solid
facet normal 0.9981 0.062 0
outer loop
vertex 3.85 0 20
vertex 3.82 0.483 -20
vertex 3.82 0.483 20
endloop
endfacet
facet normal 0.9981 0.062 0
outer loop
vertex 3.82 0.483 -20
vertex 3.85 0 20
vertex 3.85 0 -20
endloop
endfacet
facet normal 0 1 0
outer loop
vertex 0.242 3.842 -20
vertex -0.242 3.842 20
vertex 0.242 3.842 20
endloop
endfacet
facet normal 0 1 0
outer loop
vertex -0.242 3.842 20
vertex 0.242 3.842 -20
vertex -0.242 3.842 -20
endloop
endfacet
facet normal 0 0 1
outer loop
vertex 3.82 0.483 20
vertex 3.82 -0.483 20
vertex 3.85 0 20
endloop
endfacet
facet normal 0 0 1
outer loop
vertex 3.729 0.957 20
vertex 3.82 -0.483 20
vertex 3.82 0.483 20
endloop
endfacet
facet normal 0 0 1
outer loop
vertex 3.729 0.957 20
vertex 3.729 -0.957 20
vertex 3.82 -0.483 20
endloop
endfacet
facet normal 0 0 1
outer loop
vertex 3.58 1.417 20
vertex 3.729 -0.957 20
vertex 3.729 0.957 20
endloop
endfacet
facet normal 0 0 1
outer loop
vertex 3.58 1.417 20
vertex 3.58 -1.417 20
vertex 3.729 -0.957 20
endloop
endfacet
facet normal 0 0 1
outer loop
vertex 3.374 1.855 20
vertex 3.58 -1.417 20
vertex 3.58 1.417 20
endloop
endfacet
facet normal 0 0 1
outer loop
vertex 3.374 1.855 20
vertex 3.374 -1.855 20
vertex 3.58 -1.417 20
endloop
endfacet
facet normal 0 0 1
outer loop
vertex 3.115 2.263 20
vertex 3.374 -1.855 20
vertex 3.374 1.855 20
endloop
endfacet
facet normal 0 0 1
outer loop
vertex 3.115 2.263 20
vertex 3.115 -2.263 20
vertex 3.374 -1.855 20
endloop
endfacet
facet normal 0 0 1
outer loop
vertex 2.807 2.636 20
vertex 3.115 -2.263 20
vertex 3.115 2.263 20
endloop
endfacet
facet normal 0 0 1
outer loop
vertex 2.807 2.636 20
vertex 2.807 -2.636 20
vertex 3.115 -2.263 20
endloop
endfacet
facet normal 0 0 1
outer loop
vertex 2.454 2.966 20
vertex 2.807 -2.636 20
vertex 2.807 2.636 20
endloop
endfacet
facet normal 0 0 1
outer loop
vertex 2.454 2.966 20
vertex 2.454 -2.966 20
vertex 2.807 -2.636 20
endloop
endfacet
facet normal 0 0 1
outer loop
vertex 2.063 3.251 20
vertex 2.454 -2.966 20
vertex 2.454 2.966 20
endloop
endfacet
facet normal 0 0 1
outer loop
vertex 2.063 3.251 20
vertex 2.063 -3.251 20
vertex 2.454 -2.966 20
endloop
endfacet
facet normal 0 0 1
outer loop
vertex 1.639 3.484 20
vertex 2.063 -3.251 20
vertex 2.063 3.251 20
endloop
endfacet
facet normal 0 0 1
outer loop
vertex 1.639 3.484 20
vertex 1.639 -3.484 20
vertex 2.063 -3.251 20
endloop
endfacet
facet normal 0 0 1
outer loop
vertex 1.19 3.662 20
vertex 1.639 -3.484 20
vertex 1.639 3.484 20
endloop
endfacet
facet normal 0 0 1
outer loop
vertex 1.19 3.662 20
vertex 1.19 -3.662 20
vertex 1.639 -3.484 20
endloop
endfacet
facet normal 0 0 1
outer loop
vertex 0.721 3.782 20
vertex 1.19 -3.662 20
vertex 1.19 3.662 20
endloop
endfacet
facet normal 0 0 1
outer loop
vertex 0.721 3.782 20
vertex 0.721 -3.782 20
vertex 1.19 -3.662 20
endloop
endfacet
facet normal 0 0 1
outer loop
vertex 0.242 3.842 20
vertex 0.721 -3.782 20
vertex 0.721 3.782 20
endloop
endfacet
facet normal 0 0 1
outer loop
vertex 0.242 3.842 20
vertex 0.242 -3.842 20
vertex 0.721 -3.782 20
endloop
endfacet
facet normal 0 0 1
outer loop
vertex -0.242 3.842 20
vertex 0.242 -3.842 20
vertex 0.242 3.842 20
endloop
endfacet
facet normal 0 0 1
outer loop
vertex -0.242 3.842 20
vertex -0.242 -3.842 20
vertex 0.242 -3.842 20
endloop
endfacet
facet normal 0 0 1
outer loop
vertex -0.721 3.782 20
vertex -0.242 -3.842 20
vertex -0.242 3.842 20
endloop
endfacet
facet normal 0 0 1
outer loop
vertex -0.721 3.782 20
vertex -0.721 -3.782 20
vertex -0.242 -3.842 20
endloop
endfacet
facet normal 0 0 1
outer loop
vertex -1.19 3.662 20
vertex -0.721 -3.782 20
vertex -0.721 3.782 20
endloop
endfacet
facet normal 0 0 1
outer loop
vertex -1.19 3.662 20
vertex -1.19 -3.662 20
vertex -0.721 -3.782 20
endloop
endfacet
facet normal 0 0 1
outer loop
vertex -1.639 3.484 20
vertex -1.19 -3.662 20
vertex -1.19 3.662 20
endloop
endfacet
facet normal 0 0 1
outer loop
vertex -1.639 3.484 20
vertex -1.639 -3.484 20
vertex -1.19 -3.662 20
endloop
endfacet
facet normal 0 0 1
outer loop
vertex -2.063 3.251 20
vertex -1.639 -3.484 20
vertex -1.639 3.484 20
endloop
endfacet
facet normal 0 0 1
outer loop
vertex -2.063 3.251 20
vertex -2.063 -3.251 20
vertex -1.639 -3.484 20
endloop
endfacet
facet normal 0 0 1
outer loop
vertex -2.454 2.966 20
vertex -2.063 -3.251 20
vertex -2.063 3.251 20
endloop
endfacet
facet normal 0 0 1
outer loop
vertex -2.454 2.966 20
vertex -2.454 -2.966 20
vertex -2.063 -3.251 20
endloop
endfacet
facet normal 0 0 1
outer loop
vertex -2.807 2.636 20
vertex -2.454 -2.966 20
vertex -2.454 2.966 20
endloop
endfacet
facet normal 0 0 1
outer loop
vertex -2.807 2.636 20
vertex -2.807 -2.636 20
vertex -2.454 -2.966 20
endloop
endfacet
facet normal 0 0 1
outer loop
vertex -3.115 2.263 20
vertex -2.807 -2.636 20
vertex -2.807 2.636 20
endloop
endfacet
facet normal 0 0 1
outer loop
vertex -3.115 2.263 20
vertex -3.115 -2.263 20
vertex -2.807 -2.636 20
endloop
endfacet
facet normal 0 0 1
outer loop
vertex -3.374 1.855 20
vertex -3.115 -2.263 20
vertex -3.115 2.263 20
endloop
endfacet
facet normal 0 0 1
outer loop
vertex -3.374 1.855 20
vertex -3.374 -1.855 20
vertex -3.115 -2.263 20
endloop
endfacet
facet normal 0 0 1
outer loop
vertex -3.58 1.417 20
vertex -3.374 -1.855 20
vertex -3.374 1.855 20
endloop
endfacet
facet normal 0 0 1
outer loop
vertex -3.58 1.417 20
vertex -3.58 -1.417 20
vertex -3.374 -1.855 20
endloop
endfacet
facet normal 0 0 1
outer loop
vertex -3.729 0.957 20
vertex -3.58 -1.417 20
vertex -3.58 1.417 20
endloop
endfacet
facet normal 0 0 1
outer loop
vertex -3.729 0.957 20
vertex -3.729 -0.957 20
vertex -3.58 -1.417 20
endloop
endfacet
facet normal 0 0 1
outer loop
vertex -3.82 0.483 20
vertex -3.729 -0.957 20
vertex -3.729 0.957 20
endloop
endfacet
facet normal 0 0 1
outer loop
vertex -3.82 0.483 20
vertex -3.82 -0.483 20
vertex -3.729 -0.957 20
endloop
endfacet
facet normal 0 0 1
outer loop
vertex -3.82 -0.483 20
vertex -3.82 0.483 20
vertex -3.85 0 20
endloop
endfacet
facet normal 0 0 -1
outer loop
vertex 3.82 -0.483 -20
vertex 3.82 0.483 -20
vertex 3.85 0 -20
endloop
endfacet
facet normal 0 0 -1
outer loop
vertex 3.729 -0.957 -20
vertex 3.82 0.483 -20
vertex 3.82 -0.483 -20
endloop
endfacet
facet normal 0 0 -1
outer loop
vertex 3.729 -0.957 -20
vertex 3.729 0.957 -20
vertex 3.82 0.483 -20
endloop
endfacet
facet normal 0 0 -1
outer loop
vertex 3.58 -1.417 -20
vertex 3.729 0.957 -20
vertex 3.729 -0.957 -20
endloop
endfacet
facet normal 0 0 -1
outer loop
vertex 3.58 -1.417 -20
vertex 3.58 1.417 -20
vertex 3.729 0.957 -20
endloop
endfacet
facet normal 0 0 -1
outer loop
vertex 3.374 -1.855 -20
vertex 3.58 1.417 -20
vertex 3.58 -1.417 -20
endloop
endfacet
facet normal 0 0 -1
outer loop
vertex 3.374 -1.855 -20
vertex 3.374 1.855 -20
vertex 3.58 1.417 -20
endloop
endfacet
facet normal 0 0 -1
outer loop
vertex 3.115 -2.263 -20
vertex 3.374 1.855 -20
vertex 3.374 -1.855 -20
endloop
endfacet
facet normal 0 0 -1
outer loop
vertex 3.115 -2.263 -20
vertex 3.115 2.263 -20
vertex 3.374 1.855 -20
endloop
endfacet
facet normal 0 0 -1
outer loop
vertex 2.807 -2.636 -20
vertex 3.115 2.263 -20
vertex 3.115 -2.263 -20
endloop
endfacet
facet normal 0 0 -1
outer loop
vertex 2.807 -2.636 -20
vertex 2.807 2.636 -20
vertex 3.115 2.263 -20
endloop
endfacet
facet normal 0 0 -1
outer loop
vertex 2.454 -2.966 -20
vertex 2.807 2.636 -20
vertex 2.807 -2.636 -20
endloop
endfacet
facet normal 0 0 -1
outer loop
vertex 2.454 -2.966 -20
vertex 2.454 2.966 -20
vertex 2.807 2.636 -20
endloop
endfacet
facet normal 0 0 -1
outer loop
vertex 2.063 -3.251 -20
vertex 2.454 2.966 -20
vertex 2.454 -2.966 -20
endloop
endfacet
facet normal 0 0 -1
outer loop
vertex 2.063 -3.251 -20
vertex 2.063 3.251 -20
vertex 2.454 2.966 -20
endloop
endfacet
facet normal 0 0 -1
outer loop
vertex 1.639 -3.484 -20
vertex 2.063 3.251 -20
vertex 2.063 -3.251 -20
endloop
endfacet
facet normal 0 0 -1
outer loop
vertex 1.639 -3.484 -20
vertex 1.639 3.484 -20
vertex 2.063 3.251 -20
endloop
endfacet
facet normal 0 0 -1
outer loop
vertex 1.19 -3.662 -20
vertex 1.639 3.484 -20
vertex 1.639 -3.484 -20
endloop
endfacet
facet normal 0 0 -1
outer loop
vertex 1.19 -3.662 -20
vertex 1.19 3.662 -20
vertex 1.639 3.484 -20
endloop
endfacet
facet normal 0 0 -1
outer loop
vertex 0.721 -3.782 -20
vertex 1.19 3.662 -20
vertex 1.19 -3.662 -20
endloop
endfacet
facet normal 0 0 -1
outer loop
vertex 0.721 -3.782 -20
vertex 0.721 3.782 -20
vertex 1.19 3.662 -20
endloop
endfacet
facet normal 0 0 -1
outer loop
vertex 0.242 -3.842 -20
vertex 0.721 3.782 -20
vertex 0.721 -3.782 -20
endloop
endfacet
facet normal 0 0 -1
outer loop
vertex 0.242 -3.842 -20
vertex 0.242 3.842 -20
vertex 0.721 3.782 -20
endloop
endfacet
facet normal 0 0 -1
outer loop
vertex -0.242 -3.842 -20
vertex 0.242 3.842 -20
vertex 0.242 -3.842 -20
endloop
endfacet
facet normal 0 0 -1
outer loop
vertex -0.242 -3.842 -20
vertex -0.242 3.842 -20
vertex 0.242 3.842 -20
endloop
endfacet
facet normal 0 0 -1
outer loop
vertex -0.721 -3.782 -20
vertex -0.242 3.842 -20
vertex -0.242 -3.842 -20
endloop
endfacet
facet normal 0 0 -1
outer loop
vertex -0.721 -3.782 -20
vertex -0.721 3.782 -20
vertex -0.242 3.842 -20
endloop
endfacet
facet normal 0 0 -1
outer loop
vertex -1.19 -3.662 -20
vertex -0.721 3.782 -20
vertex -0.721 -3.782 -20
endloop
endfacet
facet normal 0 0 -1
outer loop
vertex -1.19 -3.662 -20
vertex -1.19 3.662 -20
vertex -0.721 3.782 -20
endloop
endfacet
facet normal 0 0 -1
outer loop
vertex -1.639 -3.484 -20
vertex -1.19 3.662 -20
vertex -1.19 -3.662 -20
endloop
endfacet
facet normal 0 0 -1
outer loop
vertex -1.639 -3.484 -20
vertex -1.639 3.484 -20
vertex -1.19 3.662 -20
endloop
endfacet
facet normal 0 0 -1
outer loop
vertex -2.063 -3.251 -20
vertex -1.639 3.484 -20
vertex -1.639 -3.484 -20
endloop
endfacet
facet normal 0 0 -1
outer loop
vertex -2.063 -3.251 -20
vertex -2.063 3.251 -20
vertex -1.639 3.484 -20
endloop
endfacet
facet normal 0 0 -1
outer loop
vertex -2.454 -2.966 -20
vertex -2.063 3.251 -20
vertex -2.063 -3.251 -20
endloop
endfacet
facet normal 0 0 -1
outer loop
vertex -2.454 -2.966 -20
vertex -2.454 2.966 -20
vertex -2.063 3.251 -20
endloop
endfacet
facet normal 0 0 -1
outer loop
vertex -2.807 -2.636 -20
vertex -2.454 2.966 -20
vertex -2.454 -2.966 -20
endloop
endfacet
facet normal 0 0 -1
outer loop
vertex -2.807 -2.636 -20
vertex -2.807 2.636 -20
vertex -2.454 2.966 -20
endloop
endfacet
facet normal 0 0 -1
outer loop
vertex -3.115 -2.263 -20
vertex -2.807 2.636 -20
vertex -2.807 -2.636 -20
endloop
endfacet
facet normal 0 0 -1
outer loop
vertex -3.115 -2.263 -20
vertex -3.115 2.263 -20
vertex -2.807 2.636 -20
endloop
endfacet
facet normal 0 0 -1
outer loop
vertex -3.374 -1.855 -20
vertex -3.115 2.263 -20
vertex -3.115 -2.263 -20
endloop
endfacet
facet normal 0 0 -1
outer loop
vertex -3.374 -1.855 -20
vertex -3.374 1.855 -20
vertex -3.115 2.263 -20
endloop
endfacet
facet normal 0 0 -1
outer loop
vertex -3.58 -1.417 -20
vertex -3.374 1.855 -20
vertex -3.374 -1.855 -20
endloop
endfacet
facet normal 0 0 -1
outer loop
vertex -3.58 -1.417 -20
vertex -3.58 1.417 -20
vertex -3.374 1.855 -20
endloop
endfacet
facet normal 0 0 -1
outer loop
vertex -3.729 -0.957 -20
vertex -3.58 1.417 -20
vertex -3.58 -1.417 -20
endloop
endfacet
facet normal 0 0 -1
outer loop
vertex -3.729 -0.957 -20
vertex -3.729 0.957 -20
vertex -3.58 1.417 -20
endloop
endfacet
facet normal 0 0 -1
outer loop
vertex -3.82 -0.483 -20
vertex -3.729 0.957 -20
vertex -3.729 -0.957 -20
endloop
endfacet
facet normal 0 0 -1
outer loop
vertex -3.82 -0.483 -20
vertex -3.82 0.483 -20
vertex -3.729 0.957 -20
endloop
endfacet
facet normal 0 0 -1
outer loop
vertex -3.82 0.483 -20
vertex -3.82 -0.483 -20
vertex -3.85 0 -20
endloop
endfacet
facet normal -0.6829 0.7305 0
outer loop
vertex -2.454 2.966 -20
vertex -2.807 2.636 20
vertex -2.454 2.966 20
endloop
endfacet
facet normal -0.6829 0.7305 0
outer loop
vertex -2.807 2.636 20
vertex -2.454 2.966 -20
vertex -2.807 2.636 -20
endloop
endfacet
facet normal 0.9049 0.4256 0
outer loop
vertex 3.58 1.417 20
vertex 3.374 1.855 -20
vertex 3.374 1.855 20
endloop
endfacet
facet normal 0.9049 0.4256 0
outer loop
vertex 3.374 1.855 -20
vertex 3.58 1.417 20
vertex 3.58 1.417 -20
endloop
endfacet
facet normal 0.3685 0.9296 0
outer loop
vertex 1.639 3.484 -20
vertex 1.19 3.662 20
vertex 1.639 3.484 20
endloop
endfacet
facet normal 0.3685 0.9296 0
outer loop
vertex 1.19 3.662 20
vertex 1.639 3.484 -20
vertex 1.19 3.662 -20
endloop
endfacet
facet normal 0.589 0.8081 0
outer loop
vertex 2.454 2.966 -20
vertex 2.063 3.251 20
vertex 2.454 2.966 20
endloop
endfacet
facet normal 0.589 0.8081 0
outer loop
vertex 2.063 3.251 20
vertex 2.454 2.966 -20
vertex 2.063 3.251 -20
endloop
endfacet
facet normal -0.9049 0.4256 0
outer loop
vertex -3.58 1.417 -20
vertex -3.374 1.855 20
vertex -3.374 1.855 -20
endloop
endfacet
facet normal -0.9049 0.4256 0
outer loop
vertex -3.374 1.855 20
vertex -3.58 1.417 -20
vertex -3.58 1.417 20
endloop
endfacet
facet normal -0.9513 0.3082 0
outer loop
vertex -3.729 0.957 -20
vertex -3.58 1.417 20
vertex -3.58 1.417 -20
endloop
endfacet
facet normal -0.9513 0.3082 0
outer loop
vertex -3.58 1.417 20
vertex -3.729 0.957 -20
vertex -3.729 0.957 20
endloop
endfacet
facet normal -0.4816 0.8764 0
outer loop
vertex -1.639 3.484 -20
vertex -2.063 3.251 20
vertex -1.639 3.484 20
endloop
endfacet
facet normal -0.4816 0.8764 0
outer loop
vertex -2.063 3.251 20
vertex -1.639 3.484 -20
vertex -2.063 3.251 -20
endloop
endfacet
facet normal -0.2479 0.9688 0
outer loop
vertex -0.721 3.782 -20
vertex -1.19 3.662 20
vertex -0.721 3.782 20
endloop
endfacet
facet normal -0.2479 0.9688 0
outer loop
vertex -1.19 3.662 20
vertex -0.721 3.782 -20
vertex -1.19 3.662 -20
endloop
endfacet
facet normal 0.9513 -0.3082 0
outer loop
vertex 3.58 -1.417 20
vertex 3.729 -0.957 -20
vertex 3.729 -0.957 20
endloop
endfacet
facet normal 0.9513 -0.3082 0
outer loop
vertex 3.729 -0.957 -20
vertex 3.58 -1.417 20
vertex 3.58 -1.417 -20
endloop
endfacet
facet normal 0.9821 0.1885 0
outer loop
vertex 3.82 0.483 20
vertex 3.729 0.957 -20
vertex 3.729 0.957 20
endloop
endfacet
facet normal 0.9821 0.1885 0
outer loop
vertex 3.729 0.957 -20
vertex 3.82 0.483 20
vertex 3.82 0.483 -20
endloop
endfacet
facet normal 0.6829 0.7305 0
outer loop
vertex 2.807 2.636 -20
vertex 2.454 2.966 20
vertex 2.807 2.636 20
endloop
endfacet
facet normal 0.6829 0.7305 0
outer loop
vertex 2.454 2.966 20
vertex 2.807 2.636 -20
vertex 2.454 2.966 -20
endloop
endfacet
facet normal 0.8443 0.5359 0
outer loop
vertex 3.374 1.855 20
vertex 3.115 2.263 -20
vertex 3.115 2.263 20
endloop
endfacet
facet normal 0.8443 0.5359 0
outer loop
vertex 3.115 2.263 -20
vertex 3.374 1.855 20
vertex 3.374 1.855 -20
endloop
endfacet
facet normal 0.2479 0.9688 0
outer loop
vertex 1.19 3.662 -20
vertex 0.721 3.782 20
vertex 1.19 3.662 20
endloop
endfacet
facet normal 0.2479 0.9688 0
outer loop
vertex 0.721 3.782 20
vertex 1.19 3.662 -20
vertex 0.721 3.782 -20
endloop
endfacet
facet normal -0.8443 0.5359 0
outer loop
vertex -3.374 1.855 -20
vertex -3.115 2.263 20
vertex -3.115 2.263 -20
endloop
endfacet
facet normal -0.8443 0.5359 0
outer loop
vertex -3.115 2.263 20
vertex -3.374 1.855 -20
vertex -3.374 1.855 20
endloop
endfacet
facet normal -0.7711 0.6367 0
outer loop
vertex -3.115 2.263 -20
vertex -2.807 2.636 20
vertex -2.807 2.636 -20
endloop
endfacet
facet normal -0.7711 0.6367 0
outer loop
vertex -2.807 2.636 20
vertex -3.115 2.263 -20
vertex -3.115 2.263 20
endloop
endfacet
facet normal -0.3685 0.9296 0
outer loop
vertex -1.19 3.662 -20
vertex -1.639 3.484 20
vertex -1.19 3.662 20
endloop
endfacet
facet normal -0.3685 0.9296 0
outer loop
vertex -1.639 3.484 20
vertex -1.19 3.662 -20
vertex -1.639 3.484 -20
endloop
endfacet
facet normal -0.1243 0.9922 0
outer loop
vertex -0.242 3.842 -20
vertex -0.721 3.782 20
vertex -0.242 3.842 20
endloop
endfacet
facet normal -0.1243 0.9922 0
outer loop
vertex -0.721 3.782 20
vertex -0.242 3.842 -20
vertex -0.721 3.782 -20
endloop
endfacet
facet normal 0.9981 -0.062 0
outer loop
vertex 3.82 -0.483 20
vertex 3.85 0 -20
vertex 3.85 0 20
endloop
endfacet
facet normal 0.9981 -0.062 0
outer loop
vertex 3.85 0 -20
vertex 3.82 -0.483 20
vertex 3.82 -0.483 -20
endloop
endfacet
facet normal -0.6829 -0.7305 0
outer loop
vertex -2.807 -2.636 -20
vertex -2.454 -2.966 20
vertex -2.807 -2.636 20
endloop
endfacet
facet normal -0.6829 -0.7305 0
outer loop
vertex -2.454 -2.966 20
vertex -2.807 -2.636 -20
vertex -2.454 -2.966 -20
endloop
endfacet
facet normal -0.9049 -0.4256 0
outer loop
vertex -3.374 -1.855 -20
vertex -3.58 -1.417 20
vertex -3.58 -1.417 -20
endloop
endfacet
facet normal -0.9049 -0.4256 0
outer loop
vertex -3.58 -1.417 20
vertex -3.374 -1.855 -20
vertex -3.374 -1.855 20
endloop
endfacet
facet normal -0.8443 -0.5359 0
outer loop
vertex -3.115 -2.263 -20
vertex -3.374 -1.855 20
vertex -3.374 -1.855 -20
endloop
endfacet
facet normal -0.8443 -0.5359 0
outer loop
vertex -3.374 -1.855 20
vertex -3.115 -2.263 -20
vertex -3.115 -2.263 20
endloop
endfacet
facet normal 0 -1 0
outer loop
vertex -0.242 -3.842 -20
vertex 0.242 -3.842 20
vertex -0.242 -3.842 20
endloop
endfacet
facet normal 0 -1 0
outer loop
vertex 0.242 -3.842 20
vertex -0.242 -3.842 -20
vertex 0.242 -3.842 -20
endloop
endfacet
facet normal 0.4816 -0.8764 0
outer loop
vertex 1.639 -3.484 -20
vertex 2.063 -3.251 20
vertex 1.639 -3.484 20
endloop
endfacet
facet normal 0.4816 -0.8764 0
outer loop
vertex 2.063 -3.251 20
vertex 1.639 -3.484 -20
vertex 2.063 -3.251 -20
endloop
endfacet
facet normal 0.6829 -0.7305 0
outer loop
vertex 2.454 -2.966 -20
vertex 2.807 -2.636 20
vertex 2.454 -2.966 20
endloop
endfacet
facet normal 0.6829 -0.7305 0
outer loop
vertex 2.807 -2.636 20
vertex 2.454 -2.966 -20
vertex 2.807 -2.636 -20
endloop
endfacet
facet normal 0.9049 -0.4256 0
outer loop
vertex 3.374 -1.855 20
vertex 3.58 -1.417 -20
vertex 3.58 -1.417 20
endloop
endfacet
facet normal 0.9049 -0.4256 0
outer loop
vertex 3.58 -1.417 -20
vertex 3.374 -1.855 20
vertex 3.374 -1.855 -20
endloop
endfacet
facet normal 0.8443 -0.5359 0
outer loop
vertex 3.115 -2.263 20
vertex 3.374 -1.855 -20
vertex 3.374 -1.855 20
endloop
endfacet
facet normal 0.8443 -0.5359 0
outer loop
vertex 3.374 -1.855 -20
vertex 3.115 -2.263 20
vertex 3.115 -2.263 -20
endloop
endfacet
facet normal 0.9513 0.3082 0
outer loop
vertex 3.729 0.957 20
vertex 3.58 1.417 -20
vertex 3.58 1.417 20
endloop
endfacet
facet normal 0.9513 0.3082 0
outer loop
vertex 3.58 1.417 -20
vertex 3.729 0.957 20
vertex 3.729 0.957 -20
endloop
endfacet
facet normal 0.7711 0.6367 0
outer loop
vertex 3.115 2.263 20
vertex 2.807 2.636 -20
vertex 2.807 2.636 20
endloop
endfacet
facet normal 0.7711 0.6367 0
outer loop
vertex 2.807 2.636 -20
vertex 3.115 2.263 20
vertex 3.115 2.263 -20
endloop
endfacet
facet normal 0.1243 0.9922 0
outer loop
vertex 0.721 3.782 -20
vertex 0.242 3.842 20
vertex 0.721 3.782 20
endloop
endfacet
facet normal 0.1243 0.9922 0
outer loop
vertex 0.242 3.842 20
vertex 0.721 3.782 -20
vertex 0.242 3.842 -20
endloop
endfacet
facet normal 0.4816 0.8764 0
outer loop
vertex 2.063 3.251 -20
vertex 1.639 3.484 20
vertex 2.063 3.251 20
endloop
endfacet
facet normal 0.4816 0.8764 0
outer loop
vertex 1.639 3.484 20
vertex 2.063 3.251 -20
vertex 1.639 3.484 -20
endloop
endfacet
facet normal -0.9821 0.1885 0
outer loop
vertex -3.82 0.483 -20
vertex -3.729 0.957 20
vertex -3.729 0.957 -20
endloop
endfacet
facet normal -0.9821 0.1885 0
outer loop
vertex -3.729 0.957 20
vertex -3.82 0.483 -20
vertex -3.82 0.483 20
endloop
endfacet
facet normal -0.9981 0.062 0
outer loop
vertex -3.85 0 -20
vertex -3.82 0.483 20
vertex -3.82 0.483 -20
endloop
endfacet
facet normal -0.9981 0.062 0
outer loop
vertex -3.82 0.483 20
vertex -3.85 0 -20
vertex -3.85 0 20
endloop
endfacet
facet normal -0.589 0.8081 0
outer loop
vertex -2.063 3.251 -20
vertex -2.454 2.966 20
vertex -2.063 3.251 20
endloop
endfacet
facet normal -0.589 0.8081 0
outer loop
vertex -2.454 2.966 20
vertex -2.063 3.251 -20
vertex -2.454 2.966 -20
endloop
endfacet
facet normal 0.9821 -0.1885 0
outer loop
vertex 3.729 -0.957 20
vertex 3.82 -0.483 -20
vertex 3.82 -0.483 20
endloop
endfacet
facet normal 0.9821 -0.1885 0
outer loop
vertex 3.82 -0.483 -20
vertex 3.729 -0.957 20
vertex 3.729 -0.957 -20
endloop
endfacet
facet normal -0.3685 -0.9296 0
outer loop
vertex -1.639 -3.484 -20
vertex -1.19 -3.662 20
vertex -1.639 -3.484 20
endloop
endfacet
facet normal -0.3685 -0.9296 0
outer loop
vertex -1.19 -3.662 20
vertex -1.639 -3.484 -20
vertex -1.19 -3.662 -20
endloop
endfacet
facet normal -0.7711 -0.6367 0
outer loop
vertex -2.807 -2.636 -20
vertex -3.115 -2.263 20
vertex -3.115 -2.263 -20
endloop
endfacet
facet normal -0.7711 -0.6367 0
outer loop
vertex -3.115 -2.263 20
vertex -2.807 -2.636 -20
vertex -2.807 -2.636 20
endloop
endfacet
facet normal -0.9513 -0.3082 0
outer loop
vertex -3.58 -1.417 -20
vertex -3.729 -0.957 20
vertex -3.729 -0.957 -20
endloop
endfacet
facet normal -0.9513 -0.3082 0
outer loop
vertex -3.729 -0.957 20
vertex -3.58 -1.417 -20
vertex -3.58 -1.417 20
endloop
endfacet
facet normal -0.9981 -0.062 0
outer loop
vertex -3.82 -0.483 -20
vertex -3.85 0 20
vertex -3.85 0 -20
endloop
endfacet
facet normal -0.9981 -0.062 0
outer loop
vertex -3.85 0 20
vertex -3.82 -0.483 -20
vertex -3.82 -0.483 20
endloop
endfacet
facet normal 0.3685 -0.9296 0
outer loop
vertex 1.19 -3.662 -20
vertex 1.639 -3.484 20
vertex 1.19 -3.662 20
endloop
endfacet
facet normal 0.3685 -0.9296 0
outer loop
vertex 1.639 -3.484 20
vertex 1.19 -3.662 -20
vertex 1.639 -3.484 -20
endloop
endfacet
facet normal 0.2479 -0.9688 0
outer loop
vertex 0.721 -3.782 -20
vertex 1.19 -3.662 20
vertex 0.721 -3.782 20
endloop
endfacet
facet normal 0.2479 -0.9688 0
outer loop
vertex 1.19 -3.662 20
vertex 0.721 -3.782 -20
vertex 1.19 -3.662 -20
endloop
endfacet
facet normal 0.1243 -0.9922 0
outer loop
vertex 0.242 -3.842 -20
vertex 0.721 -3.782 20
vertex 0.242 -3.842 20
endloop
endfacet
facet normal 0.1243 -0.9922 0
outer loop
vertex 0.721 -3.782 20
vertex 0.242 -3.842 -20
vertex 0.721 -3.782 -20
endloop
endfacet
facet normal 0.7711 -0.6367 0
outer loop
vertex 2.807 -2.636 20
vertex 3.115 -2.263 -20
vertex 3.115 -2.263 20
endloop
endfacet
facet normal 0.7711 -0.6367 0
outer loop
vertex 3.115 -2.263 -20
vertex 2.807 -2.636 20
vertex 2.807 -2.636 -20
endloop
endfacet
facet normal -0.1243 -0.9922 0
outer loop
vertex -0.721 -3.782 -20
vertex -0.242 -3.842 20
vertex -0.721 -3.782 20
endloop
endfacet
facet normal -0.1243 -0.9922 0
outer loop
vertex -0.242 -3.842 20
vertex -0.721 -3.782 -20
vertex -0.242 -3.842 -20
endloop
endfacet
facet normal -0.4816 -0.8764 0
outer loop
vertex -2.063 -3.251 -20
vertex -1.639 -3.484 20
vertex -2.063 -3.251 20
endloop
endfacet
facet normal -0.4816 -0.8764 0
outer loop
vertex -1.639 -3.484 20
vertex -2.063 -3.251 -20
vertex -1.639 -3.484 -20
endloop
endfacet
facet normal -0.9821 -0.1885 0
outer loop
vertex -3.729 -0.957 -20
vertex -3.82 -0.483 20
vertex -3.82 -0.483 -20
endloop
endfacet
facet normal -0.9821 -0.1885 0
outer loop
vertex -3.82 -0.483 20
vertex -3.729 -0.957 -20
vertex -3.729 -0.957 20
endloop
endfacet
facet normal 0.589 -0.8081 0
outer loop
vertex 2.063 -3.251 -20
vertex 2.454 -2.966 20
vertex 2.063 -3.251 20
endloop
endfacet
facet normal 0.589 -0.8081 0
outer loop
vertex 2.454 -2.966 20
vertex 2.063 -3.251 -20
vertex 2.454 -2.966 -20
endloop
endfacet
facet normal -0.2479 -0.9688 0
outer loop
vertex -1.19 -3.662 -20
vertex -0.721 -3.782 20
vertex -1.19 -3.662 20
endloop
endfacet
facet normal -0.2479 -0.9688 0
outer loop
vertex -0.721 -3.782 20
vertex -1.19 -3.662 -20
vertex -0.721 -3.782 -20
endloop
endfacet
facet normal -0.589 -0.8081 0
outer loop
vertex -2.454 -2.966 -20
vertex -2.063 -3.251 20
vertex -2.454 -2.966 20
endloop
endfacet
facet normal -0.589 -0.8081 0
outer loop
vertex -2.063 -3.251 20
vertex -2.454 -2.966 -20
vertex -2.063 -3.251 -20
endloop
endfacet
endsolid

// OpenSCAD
$fn = 50;


difference() {
	union() {
		translate(v = [0, 0, -20.0000000000]) {
			cylinder(h = 40, r = 3.8500000000);
		}
	}
	union() {
		translate(v = [0, 0, -100.0000000000]) {
			cylinder(h = 200, r = 0);
		}
	}
}
